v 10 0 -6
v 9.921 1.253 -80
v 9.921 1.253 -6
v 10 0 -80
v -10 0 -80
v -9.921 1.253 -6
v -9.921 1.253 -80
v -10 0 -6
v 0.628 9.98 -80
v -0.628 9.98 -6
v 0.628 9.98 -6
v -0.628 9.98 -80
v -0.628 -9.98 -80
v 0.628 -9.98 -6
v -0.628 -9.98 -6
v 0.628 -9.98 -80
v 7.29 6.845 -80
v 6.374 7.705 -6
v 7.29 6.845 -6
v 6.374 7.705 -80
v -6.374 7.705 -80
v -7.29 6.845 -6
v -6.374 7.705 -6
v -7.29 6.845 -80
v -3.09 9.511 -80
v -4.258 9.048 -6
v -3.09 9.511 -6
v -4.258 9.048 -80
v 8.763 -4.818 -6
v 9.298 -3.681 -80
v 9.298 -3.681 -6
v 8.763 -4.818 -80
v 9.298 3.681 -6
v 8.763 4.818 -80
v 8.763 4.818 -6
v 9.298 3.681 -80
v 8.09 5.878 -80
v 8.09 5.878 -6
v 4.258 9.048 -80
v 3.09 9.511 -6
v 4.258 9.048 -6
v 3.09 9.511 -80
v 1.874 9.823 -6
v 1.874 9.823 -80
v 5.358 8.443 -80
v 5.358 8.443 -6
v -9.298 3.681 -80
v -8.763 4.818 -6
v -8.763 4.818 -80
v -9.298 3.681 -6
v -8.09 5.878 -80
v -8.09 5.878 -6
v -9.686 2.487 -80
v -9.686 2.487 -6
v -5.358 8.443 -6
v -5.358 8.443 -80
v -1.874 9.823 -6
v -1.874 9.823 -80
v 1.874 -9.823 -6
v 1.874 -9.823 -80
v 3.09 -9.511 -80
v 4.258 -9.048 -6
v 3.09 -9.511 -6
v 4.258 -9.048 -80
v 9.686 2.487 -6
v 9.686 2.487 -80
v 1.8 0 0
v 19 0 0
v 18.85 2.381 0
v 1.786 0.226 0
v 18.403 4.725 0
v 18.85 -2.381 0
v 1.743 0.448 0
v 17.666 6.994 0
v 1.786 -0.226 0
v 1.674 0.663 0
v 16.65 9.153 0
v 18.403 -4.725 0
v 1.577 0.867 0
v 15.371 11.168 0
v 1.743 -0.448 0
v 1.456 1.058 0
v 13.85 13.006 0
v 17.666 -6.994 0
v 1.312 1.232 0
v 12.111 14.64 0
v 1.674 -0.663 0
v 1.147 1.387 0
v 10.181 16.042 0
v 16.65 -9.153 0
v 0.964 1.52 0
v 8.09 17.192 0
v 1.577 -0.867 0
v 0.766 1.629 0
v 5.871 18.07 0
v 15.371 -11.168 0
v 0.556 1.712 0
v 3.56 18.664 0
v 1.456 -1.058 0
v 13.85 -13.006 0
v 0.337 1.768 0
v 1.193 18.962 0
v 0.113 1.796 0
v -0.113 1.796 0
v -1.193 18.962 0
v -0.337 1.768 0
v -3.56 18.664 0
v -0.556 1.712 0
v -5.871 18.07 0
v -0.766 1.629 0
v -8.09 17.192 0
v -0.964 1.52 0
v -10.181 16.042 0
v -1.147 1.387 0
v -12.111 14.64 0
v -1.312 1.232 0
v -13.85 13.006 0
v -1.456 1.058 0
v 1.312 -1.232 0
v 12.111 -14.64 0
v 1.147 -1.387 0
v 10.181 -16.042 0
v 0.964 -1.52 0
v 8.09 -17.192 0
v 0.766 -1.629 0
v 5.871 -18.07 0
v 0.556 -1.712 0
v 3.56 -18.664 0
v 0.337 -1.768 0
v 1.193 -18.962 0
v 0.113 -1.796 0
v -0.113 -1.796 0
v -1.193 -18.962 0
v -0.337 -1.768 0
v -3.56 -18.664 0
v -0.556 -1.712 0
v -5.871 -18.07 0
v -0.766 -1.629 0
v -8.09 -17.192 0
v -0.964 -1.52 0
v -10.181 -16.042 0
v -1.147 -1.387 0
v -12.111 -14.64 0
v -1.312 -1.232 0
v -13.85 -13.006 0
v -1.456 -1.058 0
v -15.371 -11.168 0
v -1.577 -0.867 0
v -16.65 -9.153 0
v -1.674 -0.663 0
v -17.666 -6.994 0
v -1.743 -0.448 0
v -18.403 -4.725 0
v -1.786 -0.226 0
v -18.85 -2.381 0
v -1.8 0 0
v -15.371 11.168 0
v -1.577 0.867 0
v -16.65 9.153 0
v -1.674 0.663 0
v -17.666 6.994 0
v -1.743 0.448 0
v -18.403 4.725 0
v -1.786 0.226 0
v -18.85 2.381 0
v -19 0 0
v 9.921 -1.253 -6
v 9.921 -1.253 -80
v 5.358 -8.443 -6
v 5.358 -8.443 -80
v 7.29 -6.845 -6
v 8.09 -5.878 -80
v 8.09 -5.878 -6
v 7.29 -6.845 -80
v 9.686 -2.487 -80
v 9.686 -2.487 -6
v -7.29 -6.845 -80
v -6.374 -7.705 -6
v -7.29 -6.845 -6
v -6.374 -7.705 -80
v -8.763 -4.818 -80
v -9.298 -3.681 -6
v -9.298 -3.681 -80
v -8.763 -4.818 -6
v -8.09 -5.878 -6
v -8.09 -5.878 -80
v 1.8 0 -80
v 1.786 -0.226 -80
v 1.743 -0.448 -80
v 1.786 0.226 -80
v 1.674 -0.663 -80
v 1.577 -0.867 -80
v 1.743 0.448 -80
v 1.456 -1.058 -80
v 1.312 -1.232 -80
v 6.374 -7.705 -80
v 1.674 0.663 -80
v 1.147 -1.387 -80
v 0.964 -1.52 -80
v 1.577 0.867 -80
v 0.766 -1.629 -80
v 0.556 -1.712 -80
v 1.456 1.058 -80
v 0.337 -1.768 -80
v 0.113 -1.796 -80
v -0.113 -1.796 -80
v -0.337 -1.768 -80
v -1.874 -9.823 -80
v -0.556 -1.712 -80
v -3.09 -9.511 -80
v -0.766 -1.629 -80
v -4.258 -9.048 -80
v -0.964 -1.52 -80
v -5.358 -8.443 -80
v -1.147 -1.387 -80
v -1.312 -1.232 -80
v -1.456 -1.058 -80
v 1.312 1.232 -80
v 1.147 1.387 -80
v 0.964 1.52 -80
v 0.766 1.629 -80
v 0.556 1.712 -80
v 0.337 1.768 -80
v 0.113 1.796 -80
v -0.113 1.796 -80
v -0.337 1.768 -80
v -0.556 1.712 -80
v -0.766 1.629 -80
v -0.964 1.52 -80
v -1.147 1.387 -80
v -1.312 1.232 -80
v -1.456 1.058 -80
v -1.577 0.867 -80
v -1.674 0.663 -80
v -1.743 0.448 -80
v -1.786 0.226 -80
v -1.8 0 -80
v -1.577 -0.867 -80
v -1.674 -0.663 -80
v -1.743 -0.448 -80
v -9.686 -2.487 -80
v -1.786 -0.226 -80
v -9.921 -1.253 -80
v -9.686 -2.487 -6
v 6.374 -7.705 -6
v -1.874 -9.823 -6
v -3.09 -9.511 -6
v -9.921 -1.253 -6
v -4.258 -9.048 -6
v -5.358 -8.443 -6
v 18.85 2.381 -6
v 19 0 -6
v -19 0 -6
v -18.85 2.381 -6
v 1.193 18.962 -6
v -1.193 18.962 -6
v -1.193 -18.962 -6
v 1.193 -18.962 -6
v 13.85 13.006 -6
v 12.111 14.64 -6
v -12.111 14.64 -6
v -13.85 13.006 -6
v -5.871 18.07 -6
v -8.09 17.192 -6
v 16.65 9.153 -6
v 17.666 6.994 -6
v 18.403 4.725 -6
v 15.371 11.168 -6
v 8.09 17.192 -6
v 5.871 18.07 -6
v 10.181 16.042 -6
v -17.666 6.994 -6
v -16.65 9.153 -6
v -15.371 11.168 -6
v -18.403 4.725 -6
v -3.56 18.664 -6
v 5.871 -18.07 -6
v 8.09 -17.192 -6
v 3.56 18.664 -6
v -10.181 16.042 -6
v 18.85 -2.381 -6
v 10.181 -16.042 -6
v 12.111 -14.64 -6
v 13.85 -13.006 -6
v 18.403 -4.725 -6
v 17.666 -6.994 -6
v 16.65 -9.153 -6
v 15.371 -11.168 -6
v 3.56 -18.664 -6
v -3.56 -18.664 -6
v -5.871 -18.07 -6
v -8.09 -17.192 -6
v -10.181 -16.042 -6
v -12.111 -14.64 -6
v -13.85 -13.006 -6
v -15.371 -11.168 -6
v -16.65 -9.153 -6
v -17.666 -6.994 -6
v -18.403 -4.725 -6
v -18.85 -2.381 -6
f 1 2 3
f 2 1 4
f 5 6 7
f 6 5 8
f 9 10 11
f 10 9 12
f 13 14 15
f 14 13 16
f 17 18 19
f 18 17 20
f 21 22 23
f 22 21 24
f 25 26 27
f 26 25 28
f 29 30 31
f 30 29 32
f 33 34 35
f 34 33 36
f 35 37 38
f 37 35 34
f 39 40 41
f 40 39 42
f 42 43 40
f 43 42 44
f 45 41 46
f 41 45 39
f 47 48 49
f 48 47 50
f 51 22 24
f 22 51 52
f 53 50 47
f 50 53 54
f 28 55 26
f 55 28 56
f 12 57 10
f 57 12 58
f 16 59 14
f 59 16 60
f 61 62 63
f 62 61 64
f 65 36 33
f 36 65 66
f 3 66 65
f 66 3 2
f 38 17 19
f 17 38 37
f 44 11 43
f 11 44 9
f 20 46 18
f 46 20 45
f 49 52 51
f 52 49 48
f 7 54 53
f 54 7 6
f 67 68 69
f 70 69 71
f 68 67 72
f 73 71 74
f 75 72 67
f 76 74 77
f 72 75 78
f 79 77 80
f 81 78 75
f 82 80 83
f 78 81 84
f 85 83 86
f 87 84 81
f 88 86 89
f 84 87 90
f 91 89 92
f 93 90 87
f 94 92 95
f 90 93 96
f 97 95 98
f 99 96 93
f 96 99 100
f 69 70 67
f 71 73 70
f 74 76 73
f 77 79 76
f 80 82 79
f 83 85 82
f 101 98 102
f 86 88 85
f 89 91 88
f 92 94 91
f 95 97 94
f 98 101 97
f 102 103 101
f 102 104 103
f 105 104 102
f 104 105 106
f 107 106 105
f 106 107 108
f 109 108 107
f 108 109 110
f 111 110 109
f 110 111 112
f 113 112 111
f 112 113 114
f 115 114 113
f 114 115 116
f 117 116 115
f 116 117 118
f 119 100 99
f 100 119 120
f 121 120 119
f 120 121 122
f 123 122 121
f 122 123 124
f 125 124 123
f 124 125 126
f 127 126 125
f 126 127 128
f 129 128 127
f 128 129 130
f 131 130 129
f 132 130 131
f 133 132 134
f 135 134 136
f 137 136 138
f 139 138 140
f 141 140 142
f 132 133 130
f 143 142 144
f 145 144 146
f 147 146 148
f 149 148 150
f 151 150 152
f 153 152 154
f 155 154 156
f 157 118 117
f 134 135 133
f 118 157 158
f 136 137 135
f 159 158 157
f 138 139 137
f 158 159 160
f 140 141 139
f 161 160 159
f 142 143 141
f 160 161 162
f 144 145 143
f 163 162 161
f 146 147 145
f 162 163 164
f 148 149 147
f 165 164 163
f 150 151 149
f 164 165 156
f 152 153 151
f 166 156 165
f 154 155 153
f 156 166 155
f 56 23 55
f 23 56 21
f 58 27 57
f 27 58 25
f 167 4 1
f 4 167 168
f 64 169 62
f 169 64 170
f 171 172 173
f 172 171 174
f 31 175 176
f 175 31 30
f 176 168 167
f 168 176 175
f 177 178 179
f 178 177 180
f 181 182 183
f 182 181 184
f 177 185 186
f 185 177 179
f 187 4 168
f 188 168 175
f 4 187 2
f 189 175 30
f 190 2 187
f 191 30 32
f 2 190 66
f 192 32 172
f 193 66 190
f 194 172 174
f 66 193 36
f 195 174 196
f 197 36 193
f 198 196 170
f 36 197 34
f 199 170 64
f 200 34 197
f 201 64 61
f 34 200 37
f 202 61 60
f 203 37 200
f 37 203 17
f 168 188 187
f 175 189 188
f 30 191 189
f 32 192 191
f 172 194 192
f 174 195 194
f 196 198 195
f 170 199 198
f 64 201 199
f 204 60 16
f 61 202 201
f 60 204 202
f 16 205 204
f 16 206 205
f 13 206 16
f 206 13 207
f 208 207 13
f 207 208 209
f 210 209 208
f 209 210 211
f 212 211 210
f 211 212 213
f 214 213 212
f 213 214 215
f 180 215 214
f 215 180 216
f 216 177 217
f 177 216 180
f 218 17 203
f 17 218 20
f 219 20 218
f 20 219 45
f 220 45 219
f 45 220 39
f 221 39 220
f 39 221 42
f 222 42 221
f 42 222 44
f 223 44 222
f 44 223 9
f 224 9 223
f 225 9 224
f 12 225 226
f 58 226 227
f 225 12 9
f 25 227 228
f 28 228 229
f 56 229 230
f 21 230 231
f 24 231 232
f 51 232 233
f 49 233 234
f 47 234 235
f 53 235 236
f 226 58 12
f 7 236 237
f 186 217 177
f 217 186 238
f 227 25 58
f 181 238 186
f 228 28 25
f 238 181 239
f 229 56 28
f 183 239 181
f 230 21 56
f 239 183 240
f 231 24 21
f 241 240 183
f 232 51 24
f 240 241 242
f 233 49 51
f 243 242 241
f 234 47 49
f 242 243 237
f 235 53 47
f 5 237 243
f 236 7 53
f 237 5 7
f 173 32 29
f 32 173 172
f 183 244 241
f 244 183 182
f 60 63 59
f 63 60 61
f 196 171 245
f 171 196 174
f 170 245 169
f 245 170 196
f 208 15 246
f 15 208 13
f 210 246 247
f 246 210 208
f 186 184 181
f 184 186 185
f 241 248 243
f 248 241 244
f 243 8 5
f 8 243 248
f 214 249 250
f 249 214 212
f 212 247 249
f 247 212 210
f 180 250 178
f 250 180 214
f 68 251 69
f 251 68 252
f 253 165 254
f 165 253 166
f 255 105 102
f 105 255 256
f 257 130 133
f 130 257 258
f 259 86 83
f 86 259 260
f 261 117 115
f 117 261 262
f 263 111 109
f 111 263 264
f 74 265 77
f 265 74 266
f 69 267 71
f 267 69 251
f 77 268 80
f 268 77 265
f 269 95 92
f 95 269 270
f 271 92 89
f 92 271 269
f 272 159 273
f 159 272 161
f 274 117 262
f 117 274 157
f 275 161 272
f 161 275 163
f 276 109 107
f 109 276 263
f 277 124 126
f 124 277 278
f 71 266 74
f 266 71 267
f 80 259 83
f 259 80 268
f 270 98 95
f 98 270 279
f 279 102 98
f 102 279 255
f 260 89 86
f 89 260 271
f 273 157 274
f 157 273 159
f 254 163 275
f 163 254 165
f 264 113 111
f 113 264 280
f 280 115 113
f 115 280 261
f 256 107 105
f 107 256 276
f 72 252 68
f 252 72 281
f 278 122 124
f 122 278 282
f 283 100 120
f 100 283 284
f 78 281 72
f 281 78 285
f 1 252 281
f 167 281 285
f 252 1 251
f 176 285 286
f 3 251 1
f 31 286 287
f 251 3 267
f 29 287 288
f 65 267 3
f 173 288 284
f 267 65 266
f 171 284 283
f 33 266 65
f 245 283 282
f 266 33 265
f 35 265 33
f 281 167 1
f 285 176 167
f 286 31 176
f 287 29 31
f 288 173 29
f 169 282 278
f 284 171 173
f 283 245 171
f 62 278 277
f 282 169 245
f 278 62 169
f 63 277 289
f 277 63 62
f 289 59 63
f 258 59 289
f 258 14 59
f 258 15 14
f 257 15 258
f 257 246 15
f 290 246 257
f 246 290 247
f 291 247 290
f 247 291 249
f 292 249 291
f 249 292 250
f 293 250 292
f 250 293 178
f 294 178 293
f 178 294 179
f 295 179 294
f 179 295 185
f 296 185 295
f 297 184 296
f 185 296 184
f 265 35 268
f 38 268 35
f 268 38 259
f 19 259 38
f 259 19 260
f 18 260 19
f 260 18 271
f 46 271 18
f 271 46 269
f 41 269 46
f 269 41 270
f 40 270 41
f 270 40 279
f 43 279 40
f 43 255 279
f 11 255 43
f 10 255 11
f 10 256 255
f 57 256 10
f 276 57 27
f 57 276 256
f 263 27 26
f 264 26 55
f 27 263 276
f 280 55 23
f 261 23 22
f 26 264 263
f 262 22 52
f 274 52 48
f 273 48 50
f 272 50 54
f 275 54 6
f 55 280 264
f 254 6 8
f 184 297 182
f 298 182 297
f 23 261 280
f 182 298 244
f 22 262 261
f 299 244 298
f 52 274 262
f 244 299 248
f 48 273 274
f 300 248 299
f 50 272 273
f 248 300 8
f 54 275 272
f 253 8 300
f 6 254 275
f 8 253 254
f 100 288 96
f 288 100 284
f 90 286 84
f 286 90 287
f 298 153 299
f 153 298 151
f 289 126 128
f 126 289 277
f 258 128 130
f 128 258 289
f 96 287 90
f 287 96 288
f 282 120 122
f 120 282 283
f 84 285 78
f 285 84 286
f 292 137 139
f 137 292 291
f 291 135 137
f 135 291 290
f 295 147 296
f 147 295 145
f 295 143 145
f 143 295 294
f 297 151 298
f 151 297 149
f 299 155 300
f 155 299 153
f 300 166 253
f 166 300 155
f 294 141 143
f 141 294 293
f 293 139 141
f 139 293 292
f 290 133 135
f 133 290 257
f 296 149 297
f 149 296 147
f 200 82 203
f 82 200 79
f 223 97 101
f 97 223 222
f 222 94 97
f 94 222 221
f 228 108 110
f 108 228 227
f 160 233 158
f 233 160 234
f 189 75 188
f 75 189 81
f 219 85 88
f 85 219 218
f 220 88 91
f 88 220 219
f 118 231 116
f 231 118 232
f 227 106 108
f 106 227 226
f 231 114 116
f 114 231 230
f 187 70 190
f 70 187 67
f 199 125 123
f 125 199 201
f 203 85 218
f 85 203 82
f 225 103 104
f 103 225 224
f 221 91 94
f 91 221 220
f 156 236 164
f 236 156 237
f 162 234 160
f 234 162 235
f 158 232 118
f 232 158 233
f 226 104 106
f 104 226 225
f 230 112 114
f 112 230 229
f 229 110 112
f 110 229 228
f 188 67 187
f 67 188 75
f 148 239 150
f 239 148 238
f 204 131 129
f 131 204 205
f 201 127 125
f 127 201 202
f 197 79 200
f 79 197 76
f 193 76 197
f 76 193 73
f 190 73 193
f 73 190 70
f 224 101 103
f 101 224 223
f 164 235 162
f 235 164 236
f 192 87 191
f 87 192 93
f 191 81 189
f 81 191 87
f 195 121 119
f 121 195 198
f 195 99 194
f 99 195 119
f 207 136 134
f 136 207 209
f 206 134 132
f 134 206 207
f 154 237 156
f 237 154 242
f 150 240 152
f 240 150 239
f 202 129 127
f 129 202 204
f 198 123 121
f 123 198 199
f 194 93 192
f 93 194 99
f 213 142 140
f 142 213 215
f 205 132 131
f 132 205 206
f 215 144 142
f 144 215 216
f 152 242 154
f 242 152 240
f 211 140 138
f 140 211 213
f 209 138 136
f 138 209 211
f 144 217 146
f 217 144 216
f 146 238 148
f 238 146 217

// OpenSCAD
$fn = 50;


difference() {
	union() {
		translate(v = [0, 0, -80.0000000000]) {
			cylinder(h = 80, r = 10.0000000000);
		}
		translate(v = [0, 0, -6.0000000000]) {
			cylinder(h = 6, r = 19.0000000000);
		}
	}
	union() {
		#translate(v = [0, 0, -80]) {
			cylinder(h = 80, r = 1.8000000000);
		}
	}
}
